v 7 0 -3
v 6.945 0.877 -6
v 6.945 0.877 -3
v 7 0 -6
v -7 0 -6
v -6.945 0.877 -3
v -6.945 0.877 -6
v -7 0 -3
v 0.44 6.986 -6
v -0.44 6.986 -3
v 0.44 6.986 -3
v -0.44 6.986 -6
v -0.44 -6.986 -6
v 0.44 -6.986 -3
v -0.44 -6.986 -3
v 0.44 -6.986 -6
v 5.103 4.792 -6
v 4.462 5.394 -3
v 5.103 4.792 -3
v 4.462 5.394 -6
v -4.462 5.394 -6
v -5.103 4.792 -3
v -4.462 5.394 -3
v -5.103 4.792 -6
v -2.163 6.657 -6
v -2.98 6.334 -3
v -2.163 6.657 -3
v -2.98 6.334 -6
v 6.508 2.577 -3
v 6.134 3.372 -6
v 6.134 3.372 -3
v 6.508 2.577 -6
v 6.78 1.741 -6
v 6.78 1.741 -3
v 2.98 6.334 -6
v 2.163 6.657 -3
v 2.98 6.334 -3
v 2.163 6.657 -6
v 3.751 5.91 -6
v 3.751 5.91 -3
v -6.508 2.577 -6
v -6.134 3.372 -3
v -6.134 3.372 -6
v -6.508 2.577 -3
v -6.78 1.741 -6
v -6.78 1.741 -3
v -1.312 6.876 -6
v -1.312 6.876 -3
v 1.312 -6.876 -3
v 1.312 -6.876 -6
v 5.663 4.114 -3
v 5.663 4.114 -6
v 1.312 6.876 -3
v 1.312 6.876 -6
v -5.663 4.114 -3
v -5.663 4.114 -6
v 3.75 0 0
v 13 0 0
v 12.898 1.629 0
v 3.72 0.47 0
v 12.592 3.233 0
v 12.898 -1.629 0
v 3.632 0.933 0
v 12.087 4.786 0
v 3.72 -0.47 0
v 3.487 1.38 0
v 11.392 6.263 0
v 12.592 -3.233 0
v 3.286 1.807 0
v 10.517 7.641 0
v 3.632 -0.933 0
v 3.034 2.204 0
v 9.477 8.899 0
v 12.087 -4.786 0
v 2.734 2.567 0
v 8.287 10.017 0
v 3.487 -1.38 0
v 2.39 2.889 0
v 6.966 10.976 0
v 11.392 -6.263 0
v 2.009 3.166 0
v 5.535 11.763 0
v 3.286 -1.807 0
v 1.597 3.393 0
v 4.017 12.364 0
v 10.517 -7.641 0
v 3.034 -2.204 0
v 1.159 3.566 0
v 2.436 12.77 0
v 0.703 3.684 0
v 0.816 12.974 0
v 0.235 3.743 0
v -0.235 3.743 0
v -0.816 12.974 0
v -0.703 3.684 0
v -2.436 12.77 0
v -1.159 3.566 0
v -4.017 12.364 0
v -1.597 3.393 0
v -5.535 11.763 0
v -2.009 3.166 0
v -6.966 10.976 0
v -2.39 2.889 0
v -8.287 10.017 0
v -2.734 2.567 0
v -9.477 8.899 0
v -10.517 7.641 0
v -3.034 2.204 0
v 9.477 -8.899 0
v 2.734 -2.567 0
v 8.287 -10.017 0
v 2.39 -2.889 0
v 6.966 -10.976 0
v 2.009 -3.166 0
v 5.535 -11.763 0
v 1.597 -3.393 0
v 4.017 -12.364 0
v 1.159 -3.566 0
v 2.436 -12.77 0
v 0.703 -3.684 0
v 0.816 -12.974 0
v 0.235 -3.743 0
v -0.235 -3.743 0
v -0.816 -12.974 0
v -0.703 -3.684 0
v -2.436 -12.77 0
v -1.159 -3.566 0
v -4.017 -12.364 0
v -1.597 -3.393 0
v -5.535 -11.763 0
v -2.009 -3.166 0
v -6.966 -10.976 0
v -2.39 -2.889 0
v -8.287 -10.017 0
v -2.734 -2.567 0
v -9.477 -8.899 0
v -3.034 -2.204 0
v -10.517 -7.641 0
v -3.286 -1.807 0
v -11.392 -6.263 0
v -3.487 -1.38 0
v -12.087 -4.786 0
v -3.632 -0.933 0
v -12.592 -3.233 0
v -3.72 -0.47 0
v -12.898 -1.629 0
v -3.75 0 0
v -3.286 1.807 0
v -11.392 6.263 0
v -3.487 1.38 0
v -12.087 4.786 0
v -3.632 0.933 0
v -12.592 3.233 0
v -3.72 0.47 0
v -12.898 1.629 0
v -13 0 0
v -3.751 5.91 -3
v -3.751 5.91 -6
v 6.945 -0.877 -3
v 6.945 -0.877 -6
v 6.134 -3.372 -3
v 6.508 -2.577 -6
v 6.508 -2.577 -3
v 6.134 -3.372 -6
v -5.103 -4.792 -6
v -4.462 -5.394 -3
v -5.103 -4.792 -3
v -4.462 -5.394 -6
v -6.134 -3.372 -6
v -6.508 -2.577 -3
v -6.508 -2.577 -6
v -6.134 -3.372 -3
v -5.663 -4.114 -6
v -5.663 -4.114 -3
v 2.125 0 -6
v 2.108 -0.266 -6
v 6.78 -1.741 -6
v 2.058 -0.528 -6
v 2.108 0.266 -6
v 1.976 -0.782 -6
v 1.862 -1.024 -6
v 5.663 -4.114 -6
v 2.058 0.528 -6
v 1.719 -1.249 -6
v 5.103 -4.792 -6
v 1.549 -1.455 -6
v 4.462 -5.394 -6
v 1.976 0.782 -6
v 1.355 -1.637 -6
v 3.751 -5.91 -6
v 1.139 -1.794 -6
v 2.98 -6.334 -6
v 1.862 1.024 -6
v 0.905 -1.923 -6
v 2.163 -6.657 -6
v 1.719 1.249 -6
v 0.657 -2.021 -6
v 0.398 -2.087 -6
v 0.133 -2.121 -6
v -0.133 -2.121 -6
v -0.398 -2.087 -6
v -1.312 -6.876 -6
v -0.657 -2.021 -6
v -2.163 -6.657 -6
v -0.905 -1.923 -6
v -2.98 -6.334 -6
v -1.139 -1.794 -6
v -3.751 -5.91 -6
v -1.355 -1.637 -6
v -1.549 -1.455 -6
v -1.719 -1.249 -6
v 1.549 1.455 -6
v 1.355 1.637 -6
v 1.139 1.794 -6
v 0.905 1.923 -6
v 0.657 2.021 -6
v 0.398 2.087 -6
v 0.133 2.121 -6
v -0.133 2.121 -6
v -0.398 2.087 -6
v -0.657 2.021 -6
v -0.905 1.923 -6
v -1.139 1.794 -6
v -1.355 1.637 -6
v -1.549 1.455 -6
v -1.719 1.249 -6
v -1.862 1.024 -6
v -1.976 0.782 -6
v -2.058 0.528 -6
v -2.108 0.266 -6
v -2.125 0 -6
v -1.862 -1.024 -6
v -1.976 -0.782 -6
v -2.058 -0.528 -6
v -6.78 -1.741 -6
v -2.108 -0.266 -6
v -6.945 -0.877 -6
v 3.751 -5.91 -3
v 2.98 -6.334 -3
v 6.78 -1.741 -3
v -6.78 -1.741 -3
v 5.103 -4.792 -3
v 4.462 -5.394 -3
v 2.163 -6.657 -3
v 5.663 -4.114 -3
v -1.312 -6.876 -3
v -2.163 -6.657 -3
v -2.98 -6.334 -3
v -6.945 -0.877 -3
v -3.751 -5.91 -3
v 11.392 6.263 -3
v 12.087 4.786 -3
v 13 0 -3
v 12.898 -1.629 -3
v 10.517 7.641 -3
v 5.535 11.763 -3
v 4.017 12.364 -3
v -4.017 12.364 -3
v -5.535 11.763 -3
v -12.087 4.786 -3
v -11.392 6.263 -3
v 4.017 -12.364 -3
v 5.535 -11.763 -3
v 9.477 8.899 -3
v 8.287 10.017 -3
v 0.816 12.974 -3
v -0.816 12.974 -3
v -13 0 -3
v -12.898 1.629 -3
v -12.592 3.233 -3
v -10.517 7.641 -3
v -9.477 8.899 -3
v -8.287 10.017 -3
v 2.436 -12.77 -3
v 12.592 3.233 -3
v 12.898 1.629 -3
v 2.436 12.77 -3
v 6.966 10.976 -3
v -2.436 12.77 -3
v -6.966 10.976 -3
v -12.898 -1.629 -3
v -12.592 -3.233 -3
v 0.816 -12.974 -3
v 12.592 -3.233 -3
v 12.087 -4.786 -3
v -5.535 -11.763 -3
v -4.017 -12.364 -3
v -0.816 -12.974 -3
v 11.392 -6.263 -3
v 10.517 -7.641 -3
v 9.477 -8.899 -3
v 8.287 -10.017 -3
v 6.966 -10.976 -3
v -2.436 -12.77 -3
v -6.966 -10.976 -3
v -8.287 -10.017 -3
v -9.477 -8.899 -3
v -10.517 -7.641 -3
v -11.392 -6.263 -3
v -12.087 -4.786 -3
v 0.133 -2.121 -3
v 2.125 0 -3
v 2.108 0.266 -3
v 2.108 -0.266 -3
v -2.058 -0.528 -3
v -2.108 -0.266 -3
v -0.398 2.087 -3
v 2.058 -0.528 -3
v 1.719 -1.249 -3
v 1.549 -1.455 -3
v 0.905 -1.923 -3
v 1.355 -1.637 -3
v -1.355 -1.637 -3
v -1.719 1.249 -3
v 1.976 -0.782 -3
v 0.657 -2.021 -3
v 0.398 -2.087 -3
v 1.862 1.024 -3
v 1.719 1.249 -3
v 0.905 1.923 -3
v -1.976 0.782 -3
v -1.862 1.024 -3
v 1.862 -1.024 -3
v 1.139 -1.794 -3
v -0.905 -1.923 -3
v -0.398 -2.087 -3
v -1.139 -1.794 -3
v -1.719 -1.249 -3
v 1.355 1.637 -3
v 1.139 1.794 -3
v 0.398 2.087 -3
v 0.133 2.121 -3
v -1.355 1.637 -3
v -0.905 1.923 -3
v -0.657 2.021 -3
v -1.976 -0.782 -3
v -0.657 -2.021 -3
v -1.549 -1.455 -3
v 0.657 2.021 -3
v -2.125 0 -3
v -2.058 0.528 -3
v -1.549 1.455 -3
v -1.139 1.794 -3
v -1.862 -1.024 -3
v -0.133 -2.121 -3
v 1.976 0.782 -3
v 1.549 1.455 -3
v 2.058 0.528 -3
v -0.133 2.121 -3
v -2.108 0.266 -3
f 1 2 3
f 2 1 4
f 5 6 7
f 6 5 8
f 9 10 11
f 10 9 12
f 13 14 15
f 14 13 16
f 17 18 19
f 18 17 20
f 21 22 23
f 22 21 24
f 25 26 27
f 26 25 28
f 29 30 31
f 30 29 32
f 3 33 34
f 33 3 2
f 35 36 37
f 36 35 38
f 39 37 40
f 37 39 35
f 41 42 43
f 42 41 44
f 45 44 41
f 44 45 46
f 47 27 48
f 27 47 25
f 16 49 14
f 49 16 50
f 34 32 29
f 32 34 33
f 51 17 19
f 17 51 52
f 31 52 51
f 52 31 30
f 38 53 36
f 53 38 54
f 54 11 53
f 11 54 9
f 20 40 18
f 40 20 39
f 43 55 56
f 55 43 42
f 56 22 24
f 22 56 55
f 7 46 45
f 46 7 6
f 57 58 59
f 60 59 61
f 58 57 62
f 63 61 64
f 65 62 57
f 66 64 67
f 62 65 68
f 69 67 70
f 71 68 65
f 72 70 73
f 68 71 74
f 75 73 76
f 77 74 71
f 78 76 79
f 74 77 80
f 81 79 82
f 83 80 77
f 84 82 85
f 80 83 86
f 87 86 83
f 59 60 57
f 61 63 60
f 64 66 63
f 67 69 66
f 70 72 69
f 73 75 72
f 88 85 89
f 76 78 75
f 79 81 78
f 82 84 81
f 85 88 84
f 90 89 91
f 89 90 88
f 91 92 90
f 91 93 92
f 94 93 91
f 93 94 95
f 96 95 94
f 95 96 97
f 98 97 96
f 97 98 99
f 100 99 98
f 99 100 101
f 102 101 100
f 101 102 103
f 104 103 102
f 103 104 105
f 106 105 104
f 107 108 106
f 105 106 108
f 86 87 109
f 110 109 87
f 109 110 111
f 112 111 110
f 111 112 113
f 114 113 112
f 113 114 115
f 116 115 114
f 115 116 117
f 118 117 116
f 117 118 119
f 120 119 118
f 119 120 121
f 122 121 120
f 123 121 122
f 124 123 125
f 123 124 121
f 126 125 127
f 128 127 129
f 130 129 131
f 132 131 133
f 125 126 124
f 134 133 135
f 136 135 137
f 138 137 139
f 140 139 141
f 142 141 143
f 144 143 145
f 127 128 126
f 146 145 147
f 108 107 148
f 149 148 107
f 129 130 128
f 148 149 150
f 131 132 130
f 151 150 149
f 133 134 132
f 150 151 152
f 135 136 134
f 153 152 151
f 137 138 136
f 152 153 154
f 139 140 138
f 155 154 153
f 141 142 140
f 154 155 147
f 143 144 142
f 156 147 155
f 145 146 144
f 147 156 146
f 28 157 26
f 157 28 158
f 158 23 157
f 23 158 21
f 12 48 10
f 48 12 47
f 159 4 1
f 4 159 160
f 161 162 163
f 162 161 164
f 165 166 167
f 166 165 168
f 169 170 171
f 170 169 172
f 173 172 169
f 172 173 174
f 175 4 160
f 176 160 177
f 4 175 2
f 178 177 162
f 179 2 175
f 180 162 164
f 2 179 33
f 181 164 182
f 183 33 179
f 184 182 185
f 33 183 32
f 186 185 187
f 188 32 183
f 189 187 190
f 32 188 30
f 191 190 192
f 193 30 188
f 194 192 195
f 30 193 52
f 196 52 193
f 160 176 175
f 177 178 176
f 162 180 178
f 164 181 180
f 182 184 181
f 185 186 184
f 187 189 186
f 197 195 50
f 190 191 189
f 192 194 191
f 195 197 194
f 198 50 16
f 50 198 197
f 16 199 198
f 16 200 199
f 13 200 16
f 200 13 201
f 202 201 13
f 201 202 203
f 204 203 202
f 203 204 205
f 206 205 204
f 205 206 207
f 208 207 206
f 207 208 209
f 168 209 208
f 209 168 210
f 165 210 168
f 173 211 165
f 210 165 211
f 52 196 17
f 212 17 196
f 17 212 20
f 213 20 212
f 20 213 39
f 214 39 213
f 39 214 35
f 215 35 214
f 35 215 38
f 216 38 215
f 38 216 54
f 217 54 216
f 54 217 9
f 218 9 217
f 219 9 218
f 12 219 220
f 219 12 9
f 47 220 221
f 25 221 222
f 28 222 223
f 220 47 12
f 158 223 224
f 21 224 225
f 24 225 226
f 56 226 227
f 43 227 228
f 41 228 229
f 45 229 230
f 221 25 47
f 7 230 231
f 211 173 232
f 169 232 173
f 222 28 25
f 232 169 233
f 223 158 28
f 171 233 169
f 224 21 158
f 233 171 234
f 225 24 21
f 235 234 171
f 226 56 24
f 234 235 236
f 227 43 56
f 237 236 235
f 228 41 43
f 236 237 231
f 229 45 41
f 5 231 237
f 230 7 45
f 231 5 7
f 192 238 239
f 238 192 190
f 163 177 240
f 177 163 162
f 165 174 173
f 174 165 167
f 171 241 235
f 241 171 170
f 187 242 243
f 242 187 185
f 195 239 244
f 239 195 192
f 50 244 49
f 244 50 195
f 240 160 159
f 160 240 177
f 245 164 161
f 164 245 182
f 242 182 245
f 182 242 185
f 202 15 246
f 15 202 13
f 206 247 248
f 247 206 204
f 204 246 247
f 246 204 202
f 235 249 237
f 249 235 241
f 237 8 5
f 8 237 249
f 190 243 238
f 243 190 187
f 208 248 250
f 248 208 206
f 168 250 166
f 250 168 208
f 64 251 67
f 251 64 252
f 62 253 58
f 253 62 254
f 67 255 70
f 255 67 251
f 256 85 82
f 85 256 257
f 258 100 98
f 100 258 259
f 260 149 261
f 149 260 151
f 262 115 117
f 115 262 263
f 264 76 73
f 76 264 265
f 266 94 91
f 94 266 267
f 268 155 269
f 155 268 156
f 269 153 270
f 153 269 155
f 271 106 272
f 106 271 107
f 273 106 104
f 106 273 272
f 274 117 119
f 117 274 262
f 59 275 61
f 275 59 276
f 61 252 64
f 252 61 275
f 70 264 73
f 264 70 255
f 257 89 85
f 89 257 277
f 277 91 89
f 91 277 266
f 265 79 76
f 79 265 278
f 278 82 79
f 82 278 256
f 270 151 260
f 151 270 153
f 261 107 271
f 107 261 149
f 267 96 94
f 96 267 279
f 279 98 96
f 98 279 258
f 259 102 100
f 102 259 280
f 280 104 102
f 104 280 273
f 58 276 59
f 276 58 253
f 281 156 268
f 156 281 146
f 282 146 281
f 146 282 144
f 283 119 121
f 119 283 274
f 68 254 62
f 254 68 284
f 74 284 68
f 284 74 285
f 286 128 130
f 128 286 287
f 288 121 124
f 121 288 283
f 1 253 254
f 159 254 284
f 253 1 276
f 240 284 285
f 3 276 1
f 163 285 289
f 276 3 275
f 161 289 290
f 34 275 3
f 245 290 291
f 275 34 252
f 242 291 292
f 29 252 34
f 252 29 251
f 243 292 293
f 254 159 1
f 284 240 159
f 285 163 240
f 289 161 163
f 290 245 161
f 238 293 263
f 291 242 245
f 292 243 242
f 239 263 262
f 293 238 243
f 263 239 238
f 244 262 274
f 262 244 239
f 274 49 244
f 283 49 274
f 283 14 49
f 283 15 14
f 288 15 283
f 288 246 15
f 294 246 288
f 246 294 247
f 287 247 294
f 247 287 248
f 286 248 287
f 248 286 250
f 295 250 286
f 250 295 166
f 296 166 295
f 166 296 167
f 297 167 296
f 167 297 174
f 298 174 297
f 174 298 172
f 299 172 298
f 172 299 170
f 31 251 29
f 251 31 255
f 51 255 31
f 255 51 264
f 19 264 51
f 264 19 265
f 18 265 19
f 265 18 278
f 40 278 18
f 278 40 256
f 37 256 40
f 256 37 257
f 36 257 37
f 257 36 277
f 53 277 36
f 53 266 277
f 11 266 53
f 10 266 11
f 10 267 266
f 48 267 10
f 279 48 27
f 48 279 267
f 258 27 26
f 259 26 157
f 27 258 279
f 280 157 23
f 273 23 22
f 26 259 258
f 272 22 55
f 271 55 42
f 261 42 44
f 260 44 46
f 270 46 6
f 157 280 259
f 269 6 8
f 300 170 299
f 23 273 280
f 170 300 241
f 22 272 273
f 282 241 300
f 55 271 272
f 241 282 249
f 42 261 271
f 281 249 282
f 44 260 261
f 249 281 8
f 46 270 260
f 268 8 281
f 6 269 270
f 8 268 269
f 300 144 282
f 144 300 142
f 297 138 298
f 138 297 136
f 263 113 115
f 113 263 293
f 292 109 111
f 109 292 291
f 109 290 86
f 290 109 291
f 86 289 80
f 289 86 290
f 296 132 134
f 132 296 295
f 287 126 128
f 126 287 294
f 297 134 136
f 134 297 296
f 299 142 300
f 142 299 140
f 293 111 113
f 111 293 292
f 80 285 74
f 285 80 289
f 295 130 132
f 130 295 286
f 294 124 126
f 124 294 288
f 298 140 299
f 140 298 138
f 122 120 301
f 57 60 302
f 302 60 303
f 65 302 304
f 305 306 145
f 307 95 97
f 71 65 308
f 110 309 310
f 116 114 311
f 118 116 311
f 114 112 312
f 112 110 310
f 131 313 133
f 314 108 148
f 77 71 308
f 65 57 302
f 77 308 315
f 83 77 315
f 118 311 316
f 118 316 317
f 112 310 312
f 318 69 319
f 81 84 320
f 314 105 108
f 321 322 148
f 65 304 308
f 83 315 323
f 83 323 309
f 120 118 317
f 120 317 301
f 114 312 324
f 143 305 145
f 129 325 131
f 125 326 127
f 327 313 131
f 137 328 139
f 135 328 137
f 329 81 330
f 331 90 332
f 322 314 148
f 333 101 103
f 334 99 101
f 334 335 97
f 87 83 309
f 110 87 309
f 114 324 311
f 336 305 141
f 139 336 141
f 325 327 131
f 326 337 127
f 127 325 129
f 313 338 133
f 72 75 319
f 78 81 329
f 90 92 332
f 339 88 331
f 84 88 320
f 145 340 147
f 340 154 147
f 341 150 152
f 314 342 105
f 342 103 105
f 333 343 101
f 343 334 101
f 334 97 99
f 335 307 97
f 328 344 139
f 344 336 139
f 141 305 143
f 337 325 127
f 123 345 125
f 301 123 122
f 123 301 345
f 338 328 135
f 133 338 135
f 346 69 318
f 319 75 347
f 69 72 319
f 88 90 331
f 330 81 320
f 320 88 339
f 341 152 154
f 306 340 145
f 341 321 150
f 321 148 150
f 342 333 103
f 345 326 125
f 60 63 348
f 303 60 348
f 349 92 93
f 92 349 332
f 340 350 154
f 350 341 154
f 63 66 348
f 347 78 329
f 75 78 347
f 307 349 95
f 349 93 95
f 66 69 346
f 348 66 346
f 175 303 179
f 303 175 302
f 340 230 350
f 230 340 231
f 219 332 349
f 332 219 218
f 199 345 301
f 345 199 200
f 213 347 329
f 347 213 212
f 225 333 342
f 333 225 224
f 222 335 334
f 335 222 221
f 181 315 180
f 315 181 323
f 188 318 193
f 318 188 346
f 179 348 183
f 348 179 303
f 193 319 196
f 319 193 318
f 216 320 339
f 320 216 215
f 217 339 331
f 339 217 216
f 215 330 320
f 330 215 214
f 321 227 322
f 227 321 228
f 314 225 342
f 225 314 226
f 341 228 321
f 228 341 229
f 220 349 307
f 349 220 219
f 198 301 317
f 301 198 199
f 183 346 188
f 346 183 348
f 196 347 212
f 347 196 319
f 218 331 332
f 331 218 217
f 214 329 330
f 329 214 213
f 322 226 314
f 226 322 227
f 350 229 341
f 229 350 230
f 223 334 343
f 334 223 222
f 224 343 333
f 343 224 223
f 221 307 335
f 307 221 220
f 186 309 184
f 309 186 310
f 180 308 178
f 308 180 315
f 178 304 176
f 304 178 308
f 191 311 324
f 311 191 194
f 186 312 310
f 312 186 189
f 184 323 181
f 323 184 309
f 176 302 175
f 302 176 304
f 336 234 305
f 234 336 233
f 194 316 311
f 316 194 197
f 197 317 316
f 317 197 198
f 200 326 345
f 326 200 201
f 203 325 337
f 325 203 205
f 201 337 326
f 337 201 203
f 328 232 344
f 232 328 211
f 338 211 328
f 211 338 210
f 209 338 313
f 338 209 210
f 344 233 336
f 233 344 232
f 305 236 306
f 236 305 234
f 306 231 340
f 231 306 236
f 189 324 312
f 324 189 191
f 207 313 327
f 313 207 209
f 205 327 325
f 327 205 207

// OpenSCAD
$fn = 50;


difference() {
	union() {
		translate(v = [0, 0, -6.0000000000]) {
			cylinder(h = 6, r = 7.0000000000);
		}
		translate(v = [0, 0, -3.0000000000]) {
			cylinder(h = 3, r = 13.0000000000);
		}
	}
	union() {
		translate(v = [0, 0, 0]) {
			rotate(a = [0, 0, 0]) {
				difference() {
					union() {
						#translate(v = [0, 0, -6.0000000000]) {
							cylinder(h = 6, r = 2.0000000000);
						}
						#translate(v = [0, 0, -3]) {
							cylinder(h = 3, r = 7.0000000000, r1 = 2.1250000000, r2 = 3.7500000000);
						}
						#translate(v = [0, 0, -6.0000000000]) {
							cylinder(h = 6, r = 2.1250000000);
						}
						#translate(v = [0, 0, -6.0000000000]) {
							cylinder(h = 6, r = 2.0000000000);
						}
					}
					union();
				}
			}
		}
	}
}
